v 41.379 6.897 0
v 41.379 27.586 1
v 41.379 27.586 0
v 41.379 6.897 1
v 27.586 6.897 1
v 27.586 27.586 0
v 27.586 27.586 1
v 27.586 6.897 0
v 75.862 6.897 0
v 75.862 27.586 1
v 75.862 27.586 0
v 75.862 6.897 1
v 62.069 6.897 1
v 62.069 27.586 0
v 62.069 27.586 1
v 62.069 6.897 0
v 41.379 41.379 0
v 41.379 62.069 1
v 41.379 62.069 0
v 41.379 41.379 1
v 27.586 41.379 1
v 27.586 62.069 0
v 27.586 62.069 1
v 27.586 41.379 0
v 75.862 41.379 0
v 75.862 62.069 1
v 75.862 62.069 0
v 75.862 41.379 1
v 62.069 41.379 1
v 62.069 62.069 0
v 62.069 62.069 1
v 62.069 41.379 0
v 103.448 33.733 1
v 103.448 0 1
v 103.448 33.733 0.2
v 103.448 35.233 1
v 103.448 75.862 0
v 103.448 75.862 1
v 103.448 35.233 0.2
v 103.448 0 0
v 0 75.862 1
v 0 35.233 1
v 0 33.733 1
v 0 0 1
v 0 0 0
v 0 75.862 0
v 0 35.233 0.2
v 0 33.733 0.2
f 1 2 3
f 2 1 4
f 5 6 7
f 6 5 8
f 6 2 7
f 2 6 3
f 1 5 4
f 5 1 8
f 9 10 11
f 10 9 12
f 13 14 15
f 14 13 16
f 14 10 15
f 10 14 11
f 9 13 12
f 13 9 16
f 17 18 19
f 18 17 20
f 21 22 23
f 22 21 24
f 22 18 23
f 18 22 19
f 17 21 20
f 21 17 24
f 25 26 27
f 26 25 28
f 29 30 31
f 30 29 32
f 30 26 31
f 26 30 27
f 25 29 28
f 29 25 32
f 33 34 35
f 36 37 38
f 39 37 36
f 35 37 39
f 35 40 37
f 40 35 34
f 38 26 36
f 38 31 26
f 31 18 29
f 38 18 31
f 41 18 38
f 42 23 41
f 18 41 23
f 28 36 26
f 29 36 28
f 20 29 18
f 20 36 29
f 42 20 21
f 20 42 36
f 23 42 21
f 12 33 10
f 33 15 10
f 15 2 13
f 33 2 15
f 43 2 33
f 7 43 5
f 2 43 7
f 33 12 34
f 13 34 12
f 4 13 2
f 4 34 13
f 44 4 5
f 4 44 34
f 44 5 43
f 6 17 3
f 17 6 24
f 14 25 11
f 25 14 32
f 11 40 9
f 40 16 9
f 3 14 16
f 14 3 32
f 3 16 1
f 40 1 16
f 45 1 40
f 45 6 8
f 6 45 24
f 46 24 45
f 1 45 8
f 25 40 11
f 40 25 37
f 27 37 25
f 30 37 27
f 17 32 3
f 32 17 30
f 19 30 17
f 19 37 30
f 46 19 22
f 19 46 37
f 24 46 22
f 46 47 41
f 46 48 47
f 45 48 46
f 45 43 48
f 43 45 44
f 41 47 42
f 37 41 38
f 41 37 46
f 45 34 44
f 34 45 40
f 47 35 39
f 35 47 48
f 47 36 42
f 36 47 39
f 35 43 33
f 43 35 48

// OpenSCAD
/*
 * PROMPT: H0 scale (1:87) PRL-era police station side wall panel, flat for FDM printing.
 * Two windows per floor at 1/3 and 2/3 of building depth.
 * Horizontal cornice groove at floor line. Used for both left and right sides (identical).
 */

$fn = 32;

S          = 1/87;
panel_t    = 1.0;

bld_d      = 9000*S;    // 103.4 mm
floor_h    = 3000*S;    //  34.5 mm
bld_h      = 2*floor_h; //  69.0 mm
parapet_h  = 600*S;     //   6.9 mm
wall_panel_h = bld_h + parapet_h; // 75.9 mm

side_win_w = 1200*S;    // 13.8 mm
side_win_h = 1800*S;    // 20.7 mm

cornice_w  = 1.5;
cornice_d  = 0.8;

module wall_side() {
    difference() {
        // Base slab, exterior face at Z = panel_t (face up)
        cube([bld_d, wall_panel_h, panel_t]);

        // --- Windows: 2 per floor, at 1/3 and 2/3 depth ---
        for (f = [0:1]) {
            for (pos = [1/3, 2/3]) {
                wx = pos*bld_d - side_win_w/2;
                wy = f*floor_h + (floor_h - side_win_h)/2;
                translate([wx, wy, -1])
                    cube([side_win_w, side_win_h, panel_t+2]);
            }
        }

        // --- Horizontal cornice groove at floor line ---
        cy = floor_h - cornice_w/2;
        translate([0, cy, panel_t - cornice_d])
            cube([bld_d, cornice_w, cornice_d+1]);
    }
}

wall_side();
